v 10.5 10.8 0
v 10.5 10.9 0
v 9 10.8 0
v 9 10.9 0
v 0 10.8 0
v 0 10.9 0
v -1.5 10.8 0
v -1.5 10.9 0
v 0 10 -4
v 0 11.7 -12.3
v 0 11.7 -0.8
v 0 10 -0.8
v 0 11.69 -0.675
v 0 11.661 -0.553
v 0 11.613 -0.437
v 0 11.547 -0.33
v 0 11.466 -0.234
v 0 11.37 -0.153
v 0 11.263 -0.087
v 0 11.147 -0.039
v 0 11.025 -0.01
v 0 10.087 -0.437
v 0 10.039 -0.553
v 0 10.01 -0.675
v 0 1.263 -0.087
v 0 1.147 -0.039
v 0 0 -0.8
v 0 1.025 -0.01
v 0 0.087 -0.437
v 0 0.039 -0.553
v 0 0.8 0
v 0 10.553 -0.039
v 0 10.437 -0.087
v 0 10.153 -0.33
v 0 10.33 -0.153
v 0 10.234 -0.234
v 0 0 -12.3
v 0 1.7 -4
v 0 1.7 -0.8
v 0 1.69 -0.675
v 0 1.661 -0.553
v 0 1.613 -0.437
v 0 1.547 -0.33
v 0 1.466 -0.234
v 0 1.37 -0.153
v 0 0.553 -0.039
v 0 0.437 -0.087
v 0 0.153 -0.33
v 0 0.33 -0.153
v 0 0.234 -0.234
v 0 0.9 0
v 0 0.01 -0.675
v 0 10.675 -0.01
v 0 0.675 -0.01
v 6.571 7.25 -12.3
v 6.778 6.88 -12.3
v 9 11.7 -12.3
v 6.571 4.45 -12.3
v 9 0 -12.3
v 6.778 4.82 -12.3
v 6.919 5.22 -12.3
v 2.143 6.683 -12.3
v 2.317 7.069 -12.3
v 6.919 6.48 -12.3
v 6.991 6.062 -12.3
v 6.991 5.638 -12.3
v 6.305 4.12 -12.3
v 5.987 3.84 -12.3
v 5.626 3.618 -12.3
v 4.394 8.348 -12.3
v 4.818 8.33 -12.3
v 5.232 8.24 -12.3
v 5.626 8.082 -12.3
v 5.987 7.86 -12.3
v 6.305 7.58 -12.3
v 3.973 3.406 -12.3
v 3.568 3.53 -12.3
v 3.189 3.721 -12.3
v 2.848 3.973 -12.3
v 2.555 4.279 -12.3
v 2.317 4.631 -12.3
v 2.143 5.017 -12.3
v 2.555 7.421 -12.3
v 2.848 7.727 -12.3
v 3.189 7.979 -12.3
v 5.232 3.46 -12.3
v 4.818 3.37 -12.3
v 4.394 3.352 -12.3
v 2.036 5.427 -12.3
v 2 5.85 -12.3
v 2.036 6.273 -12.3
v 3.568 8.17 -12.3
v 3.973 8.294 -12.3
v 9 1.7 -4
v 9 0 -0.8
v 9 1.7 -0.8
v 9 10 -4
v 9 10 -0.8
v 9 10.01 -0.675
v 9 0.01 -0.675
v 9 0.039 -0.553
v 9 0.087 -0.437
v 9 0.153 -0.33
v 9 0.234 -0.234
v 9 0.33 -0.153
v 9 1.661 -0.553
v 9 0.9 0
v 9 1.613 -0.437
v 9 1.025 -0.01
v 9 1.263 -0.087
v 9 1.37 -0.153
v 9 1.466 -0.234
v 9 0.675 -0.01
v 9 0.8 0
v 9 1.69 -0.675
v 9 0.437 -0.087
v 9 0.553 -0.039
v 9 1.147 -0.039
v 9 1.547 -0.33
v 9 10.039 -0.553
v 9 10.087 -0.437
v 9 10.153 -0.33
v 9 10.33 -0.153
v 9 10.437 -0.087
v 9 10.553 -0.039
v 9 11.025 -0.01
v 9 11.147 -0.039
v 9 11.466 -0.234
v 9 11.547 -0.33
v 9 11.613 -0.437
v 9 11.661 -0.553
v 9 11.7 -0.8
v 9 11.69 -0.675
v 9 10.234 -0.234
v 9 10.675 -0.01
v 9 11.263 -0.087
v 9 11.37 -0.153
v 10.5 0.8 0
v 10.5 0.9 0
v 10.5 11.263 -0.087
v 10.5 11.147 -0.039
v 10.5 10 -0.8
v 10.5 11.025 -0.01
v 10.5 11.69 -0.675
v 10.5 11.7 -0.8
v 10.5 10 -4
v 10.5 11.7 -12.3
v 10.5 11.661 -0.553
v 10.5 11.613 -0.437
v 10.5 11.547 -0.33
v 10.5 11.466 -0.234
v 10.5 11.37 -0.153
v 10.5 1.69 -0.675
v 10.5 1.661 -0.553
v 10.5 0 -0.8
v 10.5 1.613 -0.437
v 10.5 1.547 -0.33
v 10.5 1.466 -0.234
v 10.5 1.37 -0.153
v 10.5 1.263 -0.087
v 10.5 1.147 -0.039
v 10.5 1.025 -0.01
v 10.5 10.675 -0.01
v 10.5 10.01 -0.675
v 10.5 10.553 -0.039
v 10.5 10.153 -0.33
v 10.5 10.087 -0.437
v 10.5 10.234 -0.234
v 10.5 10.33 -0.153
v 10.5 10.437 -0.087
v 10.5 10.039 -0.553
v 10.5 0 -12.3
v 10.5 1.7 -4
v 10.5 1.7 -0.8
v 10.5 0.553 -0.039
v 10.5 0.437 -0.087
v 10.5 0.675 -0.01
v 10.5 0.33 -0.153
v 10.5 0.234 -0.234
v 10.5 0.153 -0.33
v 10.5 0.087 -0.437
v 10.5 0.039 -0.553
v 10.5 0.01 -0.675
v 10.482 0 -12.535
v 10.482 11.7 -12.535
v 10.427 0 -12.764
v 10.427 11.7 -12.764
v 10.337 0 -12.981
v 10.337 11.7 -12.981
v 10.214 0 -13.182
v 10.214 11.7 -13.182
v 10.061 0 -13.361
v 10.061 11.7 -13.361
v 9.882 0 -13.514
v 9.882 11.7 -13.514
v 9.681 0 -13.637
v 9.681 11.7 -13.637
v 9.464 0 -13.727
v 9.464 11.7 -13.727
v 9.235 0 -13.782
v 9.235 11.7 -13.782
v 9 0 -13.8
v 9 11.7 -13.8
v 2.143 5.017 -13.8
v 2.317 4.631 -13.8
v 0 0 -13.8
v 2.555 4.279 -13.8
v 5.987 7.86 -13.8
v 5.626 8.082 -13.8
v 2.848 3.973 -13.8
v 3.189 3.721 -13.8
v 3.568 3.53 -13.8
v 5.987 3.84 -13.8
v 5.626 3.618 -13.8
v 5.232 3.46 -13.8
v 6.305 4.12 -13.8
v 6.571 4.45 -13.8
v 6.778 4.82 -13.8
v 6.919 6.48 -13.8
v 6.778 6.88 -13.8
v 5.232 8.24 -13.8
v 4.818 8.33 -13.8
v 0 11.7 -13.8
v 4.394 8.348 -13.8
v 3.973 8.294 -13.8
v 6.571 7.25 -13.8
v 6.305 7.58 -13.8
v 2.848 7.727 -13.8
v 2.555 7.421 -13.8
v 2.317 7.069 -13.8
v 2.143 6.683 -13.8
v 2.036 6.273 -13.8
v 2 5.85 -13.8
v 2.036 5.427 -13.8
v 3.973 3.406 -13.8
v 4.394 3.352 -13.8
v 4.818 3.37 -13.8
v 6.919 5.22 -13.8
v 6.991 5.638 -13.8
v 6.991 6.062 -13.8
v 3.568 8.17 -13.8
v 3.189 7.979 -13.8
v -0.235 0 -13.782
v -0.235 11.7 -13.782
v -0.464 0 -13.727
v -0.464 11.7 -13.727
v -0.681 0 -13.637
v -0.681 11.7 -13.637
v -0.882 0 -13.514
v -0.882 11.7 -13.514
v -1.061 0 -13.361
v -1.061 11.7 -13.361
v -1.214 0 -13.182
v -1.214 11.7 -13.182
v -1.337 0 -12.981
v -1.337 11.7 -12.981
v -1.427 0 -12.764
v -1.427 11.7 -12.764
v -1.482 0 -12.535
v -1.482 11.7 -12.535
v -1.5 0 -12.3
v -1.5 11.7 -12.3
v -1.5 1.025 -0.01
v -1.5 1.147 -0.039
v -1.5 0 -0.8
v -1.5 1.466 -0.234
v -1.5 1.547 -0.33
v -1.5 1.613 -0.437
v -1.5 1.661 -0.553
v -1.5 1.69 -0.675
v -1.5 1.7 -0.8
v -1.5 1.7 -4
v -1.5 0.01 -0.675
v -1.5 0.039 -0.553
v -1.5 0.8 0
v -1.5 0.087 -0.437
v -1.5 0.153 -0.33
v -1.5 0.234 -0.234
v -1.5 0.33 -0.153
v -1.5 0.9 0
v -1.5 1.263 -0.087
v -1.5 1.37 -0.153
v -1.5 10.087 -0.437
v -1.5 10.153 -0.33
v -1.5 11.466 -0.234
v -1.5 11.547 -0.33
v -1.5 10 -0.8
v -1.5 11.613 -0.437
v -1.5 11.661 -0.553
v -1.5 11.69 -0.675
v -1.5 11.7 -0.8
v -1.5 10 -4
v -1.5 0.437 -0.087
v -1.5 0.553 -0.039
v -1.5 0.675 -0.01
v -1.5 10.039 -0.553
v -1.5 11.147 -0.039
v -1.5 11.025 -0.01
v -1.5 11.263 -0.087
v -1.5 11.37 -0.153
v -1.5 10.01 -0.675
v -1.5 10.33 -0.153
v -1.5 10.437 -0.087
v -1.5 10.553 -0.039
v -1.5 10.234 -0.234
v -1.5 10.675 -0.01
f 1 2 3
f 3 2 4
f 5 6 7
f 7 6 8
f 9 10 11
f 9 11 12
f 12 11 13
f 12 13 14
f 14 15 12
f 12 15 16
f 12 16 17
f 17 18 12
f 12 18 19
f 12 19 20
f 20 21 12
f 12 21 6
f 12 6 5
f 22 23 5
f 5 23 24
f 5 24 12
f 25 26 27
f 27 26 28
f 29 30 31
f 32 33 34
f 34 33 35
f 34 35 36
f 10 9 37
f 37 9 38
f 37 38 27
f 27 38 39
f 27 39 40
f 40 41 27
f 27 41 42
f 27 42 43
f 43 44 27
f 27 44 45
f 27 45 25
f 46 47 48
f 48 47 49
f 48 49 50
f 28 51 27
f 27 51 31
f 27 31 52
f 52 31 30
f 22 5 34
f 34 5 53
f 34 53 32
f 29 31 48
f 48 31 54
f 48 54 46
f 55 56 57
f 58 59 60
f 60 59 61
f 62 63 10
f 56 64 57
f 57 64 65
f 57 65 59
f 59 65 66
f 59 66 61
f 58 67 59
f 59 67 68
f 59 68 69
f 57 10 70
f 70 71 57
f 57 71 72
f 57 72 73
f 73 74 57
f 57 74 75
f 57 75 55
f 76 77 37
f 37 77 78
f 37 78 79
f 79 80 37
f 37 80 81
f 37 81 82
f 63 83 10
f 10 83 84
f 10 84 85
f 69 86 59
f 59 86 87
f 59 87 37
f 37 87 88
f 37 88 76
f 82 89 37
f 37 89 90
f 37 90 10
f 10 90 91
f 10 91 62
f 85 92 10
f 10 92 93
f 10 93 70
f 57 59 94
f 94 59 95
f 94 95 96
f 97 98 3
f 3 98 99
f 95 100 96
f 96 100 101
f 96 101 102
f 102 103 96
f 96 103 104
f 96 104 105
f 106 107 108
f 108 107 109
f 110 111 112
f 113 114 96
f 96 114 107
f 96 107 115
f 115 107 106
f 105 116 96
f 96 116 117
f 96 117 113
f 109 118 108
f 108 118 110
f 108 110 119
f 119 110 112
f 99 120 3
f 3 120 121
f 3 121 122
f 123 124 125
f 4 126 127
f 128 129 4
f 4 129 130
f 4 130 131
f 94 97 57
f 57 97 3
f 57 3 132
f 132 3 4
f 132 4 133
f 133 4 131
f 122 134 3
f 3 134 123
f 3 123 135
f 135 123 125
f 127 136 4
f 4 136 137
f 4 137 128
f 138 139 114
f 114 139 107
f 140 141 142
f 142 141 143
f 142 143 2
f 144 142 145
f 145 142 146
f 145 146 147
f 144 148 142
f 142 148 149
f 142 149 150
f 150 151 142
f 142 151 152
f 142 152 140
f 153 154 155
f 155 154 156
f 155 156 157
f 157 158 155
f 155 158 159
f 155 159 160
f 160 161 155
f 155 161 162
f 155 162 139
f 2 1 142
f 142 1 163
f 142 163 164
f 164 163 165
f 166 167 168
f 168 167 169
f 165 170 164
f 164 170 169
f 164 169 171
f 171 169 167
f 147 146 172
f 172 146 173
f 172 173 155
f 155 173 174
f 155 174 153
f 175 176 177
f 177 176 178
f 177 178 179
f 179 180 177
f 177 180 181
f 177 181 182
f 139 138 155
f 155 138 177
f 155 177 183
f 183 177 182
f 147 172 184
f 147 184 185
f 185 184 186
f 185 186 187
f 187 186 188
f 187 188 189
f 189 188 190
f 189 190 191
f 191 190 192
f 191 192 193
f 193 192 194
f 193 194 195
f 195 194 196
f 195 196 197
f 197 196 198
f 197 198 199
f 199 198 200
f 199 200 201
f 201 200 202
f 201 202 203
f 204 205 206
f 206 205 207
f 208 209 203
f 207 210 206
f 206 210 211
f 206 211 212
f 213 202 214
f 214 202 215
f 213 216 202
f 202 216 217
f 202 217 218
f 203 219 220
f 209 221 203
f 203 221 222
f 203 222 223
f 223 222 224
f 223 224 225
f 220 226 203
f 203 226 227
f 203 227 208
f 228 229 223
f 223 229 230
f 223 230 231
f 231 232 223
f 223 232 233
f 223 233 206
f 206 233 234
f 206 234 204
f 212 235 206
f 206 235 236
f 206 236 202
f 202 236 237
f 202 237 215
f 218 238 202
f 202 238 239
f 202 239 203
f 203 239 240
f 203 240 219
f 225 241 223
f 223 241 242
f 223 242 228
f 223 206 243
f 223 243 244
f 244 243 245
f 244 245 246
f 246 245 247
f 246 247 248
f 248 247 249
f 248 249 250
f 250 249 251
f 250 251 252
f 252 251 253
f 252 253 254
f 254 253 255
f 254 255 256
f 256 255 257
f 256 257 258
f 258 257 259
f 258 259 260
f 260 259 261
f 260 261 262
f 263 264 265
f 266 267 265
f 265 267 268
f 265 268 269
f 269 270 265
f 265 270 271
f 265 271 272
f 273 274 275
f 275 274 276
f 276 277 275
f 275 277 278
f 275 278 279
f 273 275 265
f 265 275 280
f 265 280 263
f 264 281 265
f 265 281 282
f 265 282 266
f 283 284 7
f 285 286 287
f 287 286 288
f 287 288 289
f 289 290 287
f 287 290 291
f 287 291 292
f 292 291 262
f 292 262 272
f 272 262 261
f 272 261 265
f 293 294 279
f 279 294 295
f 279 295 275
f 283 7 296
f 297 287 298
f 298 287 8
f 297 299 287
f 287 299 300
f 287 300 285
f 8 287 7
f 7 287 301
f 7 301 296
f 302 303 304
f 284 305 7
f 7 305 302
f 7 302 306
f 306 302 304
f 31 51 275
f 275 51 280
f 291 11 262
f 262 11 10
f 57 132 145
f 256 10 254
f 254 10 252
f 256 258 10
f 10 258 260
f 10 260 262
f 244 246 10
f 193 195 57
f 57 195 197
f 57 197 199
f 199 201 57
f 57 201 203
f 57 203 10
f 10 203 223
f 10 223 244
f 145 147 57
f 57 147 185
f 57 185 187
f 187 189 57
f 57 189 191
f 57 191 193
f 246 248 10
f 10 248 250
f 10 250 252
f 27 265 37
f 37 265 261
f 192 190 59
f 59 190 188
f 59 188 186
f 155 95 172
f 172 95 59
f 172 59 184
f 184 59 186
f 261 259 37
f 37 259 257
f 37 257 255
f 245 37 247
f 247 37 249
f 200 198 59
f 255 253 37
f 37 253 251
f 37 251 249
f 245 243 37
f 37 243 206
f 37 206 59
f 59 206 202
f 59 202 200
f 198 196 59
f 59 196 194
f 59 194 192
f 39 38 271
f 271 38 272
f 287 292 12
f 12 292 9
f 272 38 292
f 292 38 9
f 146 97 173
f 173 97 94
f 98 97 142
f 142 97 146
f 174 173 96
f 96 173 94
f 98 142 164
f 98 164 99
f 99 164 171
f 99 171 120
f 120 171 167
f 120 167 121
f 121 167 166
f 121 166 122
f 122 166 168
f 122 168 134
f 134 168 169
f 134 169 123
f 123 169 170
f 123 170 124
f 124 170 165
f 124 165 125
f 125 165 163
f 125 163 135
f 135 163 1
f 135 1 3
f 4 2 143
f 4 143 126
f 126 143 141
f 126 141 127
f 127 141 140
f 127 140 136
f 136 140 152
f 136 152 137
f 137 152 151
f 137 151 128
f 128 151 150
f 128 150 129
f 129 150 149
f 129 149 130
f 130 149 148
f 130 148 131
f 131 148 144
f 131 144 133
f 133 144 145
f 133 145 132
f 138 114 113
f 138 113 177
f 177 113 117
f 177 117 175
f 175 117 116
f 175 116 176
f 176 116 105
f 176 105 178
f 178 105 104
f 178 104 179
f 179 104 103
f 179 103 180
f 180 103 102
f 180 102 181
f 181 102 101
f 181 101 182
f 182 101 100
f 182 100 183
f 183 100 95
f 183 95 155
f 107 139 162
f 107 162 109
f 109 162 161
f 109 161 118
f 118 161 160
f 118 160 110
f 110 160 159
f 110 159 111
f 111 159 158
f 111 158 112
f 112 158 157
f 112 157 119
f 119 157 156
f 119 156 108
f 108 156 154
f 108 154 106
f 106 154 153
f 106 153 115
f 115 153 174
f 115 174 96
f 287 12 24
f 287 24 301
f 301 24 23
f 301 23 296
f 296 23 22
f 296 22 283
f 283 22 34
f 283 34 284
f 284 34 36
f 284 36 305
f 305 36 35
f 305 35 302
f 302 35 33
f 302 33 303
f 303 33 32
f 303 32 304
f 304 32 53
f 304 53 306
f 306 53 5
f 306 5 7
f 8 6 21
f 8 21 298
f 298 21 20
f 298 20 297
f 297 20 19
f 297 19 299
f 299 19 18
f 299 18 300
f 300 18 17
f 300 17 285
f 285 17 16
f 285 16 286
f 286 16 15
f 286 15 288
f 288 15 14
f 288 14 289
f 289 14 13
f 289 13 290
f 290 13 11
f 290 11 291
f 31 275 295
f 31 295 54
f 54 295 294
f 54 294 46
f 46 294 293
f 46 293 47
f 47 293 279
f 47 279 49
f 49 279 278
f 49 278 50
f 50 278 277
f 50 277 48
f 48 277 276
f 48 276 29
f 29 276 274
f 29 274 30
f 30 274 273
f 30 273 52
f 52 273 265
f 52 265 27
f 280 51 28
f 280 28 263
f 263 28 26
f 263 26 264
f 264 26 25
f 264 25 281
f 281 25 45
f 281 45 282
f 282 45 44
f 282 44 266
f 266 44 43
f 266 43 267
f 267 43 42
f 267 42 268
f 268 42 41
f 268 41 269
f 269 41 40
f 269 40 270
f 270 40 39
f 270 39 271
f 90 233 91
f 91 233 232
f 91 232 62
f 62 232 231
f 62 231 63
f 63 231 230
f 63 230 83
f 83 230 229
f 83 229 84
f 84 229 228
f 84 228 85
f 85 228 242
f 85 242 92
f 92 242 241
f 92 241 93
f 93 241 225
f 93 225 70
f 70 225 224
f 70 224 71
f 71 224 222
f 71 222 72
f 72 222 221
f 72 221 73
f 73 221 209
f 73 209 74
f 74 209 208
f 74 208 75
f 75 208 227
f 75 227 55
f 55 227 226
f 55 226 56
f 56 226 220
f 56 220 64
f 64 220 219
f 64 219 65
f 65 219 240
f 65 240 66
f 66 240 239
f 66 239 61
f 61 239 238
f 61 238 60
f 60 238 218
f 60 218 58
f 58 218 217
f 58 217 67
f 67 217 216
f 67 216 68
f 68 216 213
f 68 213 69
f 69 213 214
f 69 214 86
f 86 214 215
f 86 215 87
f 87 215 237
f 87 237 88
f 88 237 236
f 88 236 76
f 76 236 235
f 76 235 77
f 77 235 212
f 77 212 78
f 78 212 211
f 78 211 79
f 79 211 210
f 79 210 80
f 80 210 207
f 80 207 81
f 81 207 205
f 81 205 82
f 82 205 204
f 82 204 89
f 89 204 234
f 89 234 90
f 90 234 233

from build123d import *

# Parameters (mm, degrees)
BOSS_EXTRUDE1_DEPTH = 11.7
CUT_EXTRUDE2_REACH  = 23.71
SKETCH2_W           = 4
SKETCH2_H           = 8.3
FILLET1_R           = 0.8
SKETCH3_R           = 2.5
CUT_EXTRUDE3_DEPTH  = 1.5


with BuildPart() as part:
    # Sketch1 → Boss-Extrude1 (new body)
    with BuildSketch(Plane(origin=(0, 0, 0), x_dir=(1, 0, 0), z_dir=(0, 1, 0))):
        with BuildLine():
            Line((0, 0), (-1.5, 0))
            Line((-1.5, 0), (-1.5, 12.3))
            ThreePointArc((-1.5, 12.3), (-1.060660172, 13.360660172), (0, 13.8))
            Line((0, 13.8), (9, 13.8))
            ThreePointArc((9, 13.8), (10.060660172, 13.360660172), (10.5, 12.3))
            Line((10.5, 12.3), (10.5, 0))
            Line((10.5, 0), (9, 0))
            Line((9, 0), (9, 12.3))
            Line((9, 12.3), (0, 12.3))
            Line((0, 12.3), (0, 0))
        make_face()
    extrude(amount=BOSS_EXTRUDE1_DEPTH)

    # Cut-Extrude2: up to this face of the body (flat: up to its plane)
    cut_extrude2_end = Plane(part.part.faces().sort_by_distance((-1.5, 5.85, -6.15))[0])
    # Sketch2 → Cut-Extrude2 (cut, up to the picked face)
    with BuildSketch(Plane(origin=(10.5, 0, 0), x_dir=(0, 0, -1), z_dir=(1, 0, 0)), mode=Mode.PRIVATE) as cut_extrude2_sk1:
        with Locations((2, 5.85)):
            Rectangle(SKETCH2_W, SKETCH2_H)
    cut_extrude2_tool1 = split(extrude(cut_extrude2_sk1.sketch, amount=-CUT_EXTRUDE2_REACH, mode=Mode.PRIVATE), bisect_by=cut_extrude2_end, keep=Keep.BOTH, mode=Mode.PRIVATE)
    add(cut_extrude2_tool1.solids().sort_by(Axis((10.5, 5.85, -2), (-1, 0, 0)))[0], mode=Mode.SUBTRACT)

    # Fillet1
    fillet1_edges = [part.edges().sort_by_distance(p)[0] for p in [
        (-0.75, 0, 0),
        (9.75, 0, 0),
        (9.75, 11.7, 0),
        (-0.75, 1.7, 0),
        (9.75, 1.7, 0),
        (-0.75, 11.7, 0),
        (-0.75, 10, 0),
        (9.75, 10, 0),
    ]]
    fillet(fillet1_edges, radius=FILLET1_R)

    # Sketch3 → Cut-Extrude3 (cut)
    with BuildSketch(Plane(origin=(0, 0, -13.8), x_dir=(-1, 0, 0), z_dir=(0, 0, -1))):
        with Locations((-4.5, 5.85)):
            Circle(SKETCH3_R)
    extrude(amount=-CUT_EXTRUDE3_DEPTH, mode=Mode.SUBTRACT)


solid = part.part
